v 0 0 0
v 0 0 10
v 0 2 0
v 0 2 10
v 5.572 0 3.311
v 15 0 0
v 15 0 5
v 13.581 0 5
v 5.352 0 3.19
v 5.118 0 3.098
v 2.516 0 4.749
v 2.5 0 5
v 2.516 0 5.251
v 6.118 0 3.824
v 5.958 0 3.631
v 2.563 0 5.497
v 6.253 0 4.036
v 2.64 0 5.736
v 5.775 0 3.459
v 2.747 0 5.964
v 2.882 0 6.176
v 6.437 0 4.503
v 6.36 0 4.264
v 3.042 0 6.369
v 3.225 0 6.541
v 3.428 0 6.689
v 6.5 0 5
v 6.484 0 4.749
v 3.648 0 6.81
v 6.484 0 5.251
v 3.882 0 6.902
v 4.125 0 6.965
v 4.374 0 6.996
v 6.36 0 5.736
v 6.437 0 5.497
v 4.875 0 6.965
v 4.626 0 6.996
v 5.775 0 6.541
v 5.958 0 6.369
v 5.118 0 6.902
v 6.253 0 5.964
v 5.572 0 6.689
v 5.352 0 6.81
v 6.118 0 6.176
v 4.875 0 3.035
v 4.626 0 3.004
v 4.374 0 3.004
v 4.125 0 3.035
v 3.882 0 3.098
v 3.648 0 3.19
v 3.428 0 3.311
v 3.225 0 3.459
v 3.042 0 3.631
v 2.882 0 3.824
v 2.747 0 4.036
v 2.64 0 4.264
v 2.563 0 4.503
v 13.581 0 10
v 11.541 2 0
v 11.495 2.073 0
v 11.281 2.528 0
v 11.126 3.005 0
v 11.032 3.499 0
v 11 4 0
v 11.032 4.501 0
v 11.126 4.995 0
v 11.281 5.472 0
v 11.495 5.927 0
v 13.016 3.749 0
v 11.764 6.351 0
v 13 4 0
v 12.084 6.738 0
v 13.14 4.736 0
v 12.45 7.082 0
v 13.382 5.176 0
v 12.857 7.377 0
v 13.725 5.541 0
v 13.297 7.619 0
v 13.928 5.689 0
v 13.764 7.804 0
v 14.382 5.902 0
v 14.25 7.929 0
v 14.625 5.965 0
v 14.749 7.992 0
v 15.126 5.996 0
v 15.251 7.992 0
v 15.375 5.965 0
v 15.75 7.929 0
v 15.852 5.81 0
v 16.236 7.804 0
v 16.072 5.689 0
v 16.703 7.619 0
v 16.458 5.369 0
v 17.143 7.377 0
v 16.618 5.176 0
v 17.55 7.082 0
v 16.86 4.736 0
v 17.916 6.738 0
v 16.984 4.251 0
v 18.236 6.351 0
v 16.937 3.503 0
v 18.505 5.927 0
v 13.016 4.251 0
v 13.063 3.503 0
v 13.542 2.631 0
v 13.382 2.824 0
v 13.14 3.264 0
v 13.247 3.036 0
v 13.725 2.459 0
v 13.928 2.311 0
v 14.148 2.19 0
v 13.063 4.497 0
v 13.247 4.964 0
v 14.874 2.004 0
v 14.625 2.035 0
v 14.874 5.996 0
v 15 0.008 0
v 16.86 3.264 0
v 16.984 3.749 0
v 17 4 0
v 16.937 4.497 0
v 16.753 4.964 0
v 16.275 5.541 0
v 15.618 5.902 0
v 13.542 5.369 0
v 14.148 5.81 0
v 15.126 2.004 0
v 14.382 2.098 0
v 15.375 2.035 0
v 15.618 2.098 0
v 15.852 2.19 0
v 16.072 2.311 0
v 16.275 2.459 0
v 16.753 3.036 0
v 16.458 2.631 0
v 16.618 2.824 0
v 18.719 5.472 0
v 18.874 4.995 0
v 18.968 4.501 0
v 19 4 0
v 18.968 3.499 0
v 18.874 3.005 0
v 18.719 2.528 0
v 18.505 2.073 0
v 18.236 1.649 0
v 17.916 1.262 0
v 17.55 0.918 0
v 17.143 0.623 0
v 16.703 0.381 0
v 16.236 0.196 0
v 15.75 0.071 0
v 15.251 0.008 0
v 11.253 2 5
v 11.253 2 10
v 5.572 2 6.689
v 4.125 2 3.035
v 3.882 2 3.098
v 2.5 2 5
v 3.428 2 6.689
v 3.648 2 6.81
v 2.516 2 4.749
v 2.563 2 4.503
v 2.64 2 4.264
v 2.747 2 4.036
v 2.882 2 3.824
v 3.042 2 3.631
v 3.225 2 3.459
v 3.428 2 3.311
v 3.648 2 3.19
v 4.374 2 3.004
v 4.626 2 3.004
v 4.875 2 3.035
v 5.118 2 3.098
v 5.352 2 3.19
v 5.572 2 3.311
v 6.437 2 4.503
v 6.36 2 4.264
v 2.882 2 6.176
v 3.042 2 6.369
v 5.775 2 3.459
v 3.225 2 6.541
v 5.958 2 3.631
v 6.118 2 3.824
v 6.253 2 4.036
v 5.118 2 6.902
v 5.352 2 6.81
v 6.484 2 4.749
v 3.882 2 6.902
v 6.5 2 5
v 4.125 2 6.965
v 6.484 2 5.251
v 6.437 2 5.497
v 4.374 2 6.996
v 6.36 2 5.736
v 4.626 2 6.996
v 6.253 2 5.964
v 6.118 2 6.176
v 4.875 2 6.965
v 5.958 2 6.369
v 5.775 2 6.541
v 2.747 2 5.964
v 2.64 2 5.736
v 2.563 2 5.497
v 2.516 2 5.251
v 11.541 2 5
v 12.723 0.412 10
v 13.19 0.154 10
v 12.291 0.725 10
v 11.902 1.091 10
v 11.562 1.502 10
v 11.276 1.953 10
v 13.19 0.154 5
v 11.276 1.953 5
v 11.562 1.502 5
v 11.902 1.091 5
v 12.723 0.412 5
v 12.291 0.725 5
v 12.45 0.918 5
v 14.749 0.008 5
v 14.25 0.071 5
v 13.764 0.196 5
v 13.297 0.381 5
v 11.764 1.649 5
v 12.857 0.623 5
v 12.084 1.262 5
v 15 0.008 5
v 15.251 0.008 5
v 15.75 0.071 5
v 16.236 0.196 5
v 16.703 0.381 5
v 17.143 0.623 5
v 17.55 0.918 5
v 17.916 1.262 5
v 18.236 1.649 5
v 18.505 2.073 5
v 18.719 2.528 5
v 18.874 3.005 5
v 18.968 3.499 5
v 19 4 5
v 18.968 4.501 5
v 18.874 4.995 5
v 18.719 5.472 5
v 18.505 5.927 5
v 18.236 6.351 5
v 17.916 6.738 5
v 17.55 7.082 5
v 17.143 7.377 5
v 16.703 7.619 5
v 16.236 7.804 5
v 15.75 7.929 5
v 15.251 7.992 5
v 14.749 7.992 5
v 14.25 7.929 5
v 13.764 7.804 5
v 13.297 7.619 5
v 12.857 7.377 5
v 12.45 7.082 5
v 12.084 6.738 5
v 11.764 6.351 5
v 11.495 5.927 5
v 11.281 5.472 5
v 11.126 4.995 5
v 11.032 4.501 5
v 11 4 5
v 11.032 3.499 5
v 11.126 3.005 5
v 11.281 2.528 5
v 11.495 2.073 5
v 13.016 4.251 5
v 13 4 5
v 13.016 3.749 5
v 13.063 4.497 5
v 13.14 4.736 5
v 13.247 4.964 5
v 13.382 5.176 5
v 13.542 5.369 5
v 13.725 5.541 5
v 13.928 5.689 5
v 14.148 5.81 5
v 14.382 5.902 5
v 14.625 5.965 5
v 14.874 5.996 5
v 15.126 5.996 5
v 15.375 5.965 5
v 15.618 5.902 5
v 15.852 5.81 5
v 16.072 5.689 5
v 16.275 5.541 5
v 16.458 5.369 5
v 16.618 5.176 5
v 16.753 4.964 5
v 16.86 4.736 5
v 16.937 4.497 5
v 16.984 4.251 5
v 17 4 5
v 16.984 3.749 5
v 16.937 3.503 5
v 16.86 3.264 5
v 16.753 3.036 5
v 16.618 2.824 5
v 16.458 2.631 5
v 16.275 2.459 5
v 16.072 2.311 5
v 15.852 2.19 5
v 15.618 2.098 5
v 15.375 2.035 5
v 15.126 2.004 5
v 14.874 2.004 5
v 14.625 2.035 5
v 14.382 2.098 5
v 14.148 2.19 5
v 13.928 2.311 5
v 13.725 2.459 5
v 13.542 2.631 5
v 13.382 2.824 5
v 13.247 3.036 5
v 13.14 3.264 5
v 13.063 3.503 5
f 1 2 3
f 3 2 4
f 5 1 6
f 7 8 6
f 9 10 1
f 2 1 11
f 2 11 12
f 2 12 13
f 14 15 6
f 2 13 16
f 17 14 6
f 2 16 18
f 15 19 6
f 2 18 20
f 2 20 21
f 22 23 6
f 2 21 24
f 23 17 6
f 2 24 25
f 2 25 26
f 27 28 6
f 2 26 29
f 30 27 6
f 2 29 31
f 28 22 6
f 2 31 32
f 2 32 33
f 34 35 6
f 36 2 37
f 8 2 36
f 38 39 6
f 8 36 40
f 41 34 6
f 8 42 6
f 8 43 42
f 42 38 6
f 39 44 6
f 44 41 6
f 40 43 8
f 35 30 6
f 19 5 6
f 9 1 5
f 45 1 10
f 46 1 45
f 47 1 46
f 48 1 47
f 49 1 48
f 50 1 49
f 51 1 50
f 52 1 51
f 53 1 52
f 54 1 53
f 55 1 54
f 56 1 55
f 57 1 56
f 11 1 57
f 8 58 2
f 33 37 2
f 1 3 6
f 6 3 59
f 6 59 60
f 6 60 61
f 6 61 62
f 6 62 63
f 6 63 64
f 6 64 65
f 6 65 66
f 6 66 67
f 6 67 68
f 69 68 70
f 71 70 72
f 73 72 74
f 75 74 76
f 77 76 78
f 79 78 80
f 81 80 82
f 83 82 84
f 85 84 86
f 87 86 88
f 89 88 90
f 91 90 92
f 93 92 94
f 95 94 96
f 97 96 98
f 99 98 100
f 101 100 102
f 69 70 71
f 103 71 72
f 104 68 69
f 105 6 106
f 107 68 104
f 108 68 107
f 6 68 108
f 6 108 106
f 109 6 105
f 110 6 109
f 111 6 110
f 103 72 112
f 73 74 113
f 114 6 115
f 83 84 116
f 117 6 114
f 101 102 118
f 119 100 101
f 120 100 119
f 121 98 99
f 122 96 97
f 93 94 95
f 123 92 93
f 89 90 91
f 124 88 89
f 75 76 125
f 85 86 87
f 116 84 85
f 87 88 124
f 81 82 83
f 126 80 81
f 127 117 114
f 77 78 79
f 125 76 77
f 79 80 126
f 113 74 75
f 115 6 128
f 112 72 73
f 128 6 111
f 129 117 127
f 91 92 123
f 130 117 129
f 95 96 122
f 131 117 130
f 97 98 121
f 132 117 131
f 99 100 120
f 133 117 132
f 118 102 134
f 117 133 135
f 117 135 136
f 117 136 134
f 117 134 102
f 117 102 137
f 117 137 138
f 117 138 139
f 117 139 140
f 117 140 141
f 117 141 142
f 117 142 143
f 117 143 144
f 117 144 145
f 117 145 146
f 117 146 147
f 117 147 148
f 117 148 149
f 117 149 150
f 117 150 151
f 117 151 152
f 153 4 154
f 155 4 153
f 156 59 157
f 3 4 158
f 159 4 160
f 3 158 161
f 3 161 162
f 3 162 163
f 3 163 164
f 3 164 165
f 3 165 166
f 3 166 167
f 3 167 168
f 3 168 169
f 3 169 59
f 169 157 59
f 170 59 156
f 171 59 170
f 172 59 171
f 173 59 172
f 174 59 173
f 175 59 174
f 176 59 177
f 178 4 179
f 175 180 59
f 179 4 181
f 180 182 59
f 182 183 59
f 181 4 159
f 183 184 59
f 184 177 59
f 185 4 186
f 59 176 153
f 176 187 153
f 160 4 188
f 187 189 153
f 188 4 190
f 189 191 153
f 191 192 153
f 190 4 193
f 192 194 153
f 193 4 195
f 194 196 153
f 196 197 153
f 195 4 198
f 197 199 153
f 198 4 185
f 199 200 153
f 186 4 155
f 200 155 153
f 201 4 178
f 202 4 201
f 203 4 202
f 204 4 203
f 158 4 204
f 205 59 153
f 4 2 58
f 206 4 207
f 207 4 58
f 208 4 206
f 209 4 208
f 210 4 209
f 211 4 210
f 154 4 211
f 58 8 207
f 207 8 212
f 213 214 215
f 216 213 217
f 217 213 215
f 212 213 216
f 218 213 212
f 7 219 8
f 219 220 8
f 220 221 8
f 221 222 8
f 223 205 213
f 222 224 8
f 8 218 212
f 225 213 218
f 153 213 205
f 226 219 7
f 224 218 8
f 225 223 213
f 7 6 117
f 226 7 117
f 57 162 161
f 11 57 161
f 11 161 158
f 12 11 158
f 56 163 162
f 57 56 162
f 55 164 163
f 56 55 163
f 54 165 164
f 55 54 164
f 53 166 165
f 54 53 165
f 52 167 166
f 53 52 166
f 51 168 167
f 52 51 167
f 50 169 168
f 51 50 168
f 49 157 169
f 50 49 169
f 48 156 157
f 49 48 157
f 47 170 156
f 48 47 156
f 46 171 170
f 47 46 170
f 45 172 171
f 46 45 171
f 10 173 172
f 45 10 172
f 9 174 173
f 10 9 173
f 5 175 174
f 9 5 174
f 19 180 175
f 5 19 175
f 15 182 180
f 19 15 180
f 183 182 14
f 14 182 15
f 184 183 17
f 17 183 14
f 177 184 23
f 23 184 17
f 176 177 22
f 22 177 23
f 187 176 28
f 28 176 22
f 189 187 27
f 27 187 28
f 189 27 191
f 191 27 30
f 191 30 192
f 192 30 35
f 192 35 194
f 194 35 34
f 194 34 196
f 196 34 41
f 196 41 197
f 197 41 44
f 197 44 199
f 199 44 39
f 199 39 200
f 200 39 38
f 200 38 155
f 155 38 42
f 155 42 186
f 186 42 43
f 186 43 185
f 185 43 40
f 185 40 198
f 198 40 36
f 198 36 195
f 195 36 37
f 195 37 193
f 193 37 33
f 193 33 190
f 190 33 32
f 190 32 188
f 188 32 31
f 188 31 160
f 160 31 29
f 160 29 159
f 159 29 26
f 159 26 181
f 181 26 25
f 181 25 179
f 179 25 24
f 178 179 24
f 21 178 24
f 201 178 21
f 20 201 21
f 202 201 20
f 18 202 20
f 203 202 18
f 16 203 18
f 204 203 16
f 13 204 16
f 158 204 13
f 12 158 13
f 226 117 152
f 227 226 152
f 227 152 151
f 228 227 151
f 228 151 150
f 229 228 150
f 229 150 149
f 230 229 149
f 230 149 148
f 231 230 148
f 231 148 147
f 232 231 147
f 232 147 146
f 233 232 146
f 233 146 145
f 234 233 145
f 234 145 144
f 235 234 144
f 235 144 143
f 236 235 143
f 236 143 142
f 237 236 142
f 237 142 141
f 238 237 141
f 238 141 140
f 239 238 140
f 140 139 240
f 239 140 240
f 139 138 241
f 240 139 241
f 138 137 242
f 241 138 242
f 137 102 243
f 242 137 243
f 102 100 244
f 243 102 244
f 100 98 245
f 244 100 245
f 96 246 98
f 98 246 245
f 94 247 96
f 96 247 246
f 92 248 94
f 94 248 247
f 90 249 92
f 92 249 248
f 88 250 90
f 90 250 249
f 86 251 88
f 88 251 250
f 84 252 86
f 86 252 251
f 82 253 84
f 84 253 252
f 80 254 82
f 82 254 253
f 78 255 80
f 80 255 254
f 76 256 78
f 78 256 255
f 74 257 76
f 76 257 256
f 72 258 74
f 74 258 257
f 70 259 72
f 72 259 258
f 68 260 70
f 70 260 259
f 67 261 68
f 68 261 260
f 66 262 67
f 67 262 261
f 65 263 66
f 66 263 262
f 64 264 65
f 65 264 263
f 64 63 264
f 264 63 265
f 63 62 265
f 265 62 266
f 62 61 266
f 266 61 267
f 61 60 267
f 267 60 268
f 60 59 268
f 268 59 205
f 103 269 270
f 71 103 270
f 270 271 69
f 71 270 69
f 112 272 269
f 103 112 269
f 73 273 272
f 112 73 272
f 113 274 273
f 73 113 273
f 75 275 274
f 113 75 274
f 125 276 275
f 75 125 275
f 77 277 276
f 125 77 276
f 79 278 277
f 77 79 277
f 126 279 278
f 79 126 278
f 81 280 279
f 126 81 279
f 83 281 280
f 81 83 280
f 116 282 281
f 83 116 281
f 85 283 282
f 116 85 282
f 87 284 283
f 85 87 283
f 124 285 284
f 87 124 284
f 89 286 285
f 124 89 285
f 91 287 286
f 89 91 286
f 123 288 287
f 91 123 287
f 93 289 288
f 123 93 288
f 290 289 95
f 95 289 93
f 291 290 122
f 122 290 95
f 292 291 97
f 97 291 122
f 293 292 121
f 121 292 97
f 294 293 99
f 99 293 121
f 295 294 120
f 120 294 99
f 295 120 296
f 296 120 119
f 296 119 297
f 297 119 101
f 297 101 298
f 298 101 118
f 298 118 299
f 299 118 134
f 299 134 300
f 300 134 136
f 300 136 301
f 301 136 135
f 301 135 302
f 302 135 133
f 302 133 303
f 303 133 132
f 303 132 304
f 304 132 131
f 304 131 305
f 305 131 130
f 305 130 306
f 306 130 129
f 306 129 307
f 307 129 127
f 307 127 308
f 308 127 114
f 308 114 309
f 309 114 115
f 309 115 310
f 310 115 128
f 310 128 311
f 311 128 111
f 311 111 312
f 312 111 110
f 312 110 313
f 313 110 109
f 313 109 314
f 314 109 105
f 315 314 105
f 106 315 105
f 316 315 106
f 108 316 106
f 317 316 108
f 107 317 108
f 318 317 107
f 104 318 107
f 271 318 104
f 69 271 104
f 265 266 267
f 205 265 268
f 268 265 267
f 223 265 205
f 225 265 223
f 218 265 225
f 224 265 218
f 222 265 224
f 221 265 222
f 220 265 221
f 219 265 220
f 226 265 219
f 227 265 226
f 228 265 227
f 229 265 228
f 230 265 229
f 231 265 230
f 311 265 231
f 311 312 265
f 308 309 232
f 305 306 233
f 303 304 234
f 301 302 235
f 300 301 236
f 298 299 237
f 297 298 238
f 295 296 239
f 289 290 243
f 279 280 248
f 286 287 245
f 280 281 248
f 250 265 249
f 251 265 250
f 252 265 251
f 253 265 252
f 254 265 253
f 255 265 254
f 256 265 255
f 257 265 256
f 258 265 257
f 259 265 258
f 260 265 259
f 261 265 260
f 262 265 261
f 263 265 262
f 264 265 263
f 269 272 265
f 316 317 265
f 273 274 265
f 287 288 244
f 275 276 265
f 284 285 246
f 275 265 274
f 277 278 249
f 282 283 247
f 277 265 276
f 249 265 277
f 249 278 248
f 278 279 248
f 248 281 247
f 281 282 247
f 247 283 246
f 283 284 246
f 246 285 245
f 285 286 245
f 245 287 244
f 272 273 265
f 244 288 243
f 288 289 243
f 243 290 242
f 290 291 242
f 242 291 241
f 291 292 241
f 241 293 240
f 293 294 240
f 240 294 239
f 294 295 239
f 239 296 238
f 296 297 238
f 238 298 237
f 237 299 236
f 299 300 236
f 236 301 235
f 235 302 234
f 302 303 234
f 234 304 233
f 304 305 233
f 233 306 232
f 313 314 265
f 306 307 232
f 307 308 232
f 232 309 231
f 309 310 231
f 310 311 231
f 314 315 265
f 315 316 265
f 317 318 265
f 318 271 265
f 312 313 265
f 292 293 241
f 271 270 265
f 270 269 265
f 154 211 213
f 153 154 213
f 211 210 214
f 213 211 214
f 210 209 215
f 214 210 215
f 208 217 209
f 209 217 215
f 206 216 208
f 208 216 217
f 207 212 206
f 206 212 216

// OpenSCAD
trou_m3=2;
dim1=10;
dim2=15;
ep=2;

module support_fan_x2(){
	union(){
	difference(){
		cube([dim2,ep,dim1]);
		translate([dim2/2-3,-5,dim1/2]){rotate([-90,0,0])cylinder(h=20, r=trou_m3, $fn=50);}
		translate([dim2+trou_m3-2,4,dim1/2]){cylinder(h=dim1/2+0.25, r=trou_m3+2+0.25, $fn=50);}
	}
	difference(){
		translate([dim2+trou_m3-2,4,0]){cylinder(h=dim1/2, r=trou_m3+2, $fn=50);}
		translate([dim2+trou_m3-2,4,-2]){cylinder(h=dim1, r=trou_m3, $fn=50);}
		
	}
	}

}
support_fan_x2();
